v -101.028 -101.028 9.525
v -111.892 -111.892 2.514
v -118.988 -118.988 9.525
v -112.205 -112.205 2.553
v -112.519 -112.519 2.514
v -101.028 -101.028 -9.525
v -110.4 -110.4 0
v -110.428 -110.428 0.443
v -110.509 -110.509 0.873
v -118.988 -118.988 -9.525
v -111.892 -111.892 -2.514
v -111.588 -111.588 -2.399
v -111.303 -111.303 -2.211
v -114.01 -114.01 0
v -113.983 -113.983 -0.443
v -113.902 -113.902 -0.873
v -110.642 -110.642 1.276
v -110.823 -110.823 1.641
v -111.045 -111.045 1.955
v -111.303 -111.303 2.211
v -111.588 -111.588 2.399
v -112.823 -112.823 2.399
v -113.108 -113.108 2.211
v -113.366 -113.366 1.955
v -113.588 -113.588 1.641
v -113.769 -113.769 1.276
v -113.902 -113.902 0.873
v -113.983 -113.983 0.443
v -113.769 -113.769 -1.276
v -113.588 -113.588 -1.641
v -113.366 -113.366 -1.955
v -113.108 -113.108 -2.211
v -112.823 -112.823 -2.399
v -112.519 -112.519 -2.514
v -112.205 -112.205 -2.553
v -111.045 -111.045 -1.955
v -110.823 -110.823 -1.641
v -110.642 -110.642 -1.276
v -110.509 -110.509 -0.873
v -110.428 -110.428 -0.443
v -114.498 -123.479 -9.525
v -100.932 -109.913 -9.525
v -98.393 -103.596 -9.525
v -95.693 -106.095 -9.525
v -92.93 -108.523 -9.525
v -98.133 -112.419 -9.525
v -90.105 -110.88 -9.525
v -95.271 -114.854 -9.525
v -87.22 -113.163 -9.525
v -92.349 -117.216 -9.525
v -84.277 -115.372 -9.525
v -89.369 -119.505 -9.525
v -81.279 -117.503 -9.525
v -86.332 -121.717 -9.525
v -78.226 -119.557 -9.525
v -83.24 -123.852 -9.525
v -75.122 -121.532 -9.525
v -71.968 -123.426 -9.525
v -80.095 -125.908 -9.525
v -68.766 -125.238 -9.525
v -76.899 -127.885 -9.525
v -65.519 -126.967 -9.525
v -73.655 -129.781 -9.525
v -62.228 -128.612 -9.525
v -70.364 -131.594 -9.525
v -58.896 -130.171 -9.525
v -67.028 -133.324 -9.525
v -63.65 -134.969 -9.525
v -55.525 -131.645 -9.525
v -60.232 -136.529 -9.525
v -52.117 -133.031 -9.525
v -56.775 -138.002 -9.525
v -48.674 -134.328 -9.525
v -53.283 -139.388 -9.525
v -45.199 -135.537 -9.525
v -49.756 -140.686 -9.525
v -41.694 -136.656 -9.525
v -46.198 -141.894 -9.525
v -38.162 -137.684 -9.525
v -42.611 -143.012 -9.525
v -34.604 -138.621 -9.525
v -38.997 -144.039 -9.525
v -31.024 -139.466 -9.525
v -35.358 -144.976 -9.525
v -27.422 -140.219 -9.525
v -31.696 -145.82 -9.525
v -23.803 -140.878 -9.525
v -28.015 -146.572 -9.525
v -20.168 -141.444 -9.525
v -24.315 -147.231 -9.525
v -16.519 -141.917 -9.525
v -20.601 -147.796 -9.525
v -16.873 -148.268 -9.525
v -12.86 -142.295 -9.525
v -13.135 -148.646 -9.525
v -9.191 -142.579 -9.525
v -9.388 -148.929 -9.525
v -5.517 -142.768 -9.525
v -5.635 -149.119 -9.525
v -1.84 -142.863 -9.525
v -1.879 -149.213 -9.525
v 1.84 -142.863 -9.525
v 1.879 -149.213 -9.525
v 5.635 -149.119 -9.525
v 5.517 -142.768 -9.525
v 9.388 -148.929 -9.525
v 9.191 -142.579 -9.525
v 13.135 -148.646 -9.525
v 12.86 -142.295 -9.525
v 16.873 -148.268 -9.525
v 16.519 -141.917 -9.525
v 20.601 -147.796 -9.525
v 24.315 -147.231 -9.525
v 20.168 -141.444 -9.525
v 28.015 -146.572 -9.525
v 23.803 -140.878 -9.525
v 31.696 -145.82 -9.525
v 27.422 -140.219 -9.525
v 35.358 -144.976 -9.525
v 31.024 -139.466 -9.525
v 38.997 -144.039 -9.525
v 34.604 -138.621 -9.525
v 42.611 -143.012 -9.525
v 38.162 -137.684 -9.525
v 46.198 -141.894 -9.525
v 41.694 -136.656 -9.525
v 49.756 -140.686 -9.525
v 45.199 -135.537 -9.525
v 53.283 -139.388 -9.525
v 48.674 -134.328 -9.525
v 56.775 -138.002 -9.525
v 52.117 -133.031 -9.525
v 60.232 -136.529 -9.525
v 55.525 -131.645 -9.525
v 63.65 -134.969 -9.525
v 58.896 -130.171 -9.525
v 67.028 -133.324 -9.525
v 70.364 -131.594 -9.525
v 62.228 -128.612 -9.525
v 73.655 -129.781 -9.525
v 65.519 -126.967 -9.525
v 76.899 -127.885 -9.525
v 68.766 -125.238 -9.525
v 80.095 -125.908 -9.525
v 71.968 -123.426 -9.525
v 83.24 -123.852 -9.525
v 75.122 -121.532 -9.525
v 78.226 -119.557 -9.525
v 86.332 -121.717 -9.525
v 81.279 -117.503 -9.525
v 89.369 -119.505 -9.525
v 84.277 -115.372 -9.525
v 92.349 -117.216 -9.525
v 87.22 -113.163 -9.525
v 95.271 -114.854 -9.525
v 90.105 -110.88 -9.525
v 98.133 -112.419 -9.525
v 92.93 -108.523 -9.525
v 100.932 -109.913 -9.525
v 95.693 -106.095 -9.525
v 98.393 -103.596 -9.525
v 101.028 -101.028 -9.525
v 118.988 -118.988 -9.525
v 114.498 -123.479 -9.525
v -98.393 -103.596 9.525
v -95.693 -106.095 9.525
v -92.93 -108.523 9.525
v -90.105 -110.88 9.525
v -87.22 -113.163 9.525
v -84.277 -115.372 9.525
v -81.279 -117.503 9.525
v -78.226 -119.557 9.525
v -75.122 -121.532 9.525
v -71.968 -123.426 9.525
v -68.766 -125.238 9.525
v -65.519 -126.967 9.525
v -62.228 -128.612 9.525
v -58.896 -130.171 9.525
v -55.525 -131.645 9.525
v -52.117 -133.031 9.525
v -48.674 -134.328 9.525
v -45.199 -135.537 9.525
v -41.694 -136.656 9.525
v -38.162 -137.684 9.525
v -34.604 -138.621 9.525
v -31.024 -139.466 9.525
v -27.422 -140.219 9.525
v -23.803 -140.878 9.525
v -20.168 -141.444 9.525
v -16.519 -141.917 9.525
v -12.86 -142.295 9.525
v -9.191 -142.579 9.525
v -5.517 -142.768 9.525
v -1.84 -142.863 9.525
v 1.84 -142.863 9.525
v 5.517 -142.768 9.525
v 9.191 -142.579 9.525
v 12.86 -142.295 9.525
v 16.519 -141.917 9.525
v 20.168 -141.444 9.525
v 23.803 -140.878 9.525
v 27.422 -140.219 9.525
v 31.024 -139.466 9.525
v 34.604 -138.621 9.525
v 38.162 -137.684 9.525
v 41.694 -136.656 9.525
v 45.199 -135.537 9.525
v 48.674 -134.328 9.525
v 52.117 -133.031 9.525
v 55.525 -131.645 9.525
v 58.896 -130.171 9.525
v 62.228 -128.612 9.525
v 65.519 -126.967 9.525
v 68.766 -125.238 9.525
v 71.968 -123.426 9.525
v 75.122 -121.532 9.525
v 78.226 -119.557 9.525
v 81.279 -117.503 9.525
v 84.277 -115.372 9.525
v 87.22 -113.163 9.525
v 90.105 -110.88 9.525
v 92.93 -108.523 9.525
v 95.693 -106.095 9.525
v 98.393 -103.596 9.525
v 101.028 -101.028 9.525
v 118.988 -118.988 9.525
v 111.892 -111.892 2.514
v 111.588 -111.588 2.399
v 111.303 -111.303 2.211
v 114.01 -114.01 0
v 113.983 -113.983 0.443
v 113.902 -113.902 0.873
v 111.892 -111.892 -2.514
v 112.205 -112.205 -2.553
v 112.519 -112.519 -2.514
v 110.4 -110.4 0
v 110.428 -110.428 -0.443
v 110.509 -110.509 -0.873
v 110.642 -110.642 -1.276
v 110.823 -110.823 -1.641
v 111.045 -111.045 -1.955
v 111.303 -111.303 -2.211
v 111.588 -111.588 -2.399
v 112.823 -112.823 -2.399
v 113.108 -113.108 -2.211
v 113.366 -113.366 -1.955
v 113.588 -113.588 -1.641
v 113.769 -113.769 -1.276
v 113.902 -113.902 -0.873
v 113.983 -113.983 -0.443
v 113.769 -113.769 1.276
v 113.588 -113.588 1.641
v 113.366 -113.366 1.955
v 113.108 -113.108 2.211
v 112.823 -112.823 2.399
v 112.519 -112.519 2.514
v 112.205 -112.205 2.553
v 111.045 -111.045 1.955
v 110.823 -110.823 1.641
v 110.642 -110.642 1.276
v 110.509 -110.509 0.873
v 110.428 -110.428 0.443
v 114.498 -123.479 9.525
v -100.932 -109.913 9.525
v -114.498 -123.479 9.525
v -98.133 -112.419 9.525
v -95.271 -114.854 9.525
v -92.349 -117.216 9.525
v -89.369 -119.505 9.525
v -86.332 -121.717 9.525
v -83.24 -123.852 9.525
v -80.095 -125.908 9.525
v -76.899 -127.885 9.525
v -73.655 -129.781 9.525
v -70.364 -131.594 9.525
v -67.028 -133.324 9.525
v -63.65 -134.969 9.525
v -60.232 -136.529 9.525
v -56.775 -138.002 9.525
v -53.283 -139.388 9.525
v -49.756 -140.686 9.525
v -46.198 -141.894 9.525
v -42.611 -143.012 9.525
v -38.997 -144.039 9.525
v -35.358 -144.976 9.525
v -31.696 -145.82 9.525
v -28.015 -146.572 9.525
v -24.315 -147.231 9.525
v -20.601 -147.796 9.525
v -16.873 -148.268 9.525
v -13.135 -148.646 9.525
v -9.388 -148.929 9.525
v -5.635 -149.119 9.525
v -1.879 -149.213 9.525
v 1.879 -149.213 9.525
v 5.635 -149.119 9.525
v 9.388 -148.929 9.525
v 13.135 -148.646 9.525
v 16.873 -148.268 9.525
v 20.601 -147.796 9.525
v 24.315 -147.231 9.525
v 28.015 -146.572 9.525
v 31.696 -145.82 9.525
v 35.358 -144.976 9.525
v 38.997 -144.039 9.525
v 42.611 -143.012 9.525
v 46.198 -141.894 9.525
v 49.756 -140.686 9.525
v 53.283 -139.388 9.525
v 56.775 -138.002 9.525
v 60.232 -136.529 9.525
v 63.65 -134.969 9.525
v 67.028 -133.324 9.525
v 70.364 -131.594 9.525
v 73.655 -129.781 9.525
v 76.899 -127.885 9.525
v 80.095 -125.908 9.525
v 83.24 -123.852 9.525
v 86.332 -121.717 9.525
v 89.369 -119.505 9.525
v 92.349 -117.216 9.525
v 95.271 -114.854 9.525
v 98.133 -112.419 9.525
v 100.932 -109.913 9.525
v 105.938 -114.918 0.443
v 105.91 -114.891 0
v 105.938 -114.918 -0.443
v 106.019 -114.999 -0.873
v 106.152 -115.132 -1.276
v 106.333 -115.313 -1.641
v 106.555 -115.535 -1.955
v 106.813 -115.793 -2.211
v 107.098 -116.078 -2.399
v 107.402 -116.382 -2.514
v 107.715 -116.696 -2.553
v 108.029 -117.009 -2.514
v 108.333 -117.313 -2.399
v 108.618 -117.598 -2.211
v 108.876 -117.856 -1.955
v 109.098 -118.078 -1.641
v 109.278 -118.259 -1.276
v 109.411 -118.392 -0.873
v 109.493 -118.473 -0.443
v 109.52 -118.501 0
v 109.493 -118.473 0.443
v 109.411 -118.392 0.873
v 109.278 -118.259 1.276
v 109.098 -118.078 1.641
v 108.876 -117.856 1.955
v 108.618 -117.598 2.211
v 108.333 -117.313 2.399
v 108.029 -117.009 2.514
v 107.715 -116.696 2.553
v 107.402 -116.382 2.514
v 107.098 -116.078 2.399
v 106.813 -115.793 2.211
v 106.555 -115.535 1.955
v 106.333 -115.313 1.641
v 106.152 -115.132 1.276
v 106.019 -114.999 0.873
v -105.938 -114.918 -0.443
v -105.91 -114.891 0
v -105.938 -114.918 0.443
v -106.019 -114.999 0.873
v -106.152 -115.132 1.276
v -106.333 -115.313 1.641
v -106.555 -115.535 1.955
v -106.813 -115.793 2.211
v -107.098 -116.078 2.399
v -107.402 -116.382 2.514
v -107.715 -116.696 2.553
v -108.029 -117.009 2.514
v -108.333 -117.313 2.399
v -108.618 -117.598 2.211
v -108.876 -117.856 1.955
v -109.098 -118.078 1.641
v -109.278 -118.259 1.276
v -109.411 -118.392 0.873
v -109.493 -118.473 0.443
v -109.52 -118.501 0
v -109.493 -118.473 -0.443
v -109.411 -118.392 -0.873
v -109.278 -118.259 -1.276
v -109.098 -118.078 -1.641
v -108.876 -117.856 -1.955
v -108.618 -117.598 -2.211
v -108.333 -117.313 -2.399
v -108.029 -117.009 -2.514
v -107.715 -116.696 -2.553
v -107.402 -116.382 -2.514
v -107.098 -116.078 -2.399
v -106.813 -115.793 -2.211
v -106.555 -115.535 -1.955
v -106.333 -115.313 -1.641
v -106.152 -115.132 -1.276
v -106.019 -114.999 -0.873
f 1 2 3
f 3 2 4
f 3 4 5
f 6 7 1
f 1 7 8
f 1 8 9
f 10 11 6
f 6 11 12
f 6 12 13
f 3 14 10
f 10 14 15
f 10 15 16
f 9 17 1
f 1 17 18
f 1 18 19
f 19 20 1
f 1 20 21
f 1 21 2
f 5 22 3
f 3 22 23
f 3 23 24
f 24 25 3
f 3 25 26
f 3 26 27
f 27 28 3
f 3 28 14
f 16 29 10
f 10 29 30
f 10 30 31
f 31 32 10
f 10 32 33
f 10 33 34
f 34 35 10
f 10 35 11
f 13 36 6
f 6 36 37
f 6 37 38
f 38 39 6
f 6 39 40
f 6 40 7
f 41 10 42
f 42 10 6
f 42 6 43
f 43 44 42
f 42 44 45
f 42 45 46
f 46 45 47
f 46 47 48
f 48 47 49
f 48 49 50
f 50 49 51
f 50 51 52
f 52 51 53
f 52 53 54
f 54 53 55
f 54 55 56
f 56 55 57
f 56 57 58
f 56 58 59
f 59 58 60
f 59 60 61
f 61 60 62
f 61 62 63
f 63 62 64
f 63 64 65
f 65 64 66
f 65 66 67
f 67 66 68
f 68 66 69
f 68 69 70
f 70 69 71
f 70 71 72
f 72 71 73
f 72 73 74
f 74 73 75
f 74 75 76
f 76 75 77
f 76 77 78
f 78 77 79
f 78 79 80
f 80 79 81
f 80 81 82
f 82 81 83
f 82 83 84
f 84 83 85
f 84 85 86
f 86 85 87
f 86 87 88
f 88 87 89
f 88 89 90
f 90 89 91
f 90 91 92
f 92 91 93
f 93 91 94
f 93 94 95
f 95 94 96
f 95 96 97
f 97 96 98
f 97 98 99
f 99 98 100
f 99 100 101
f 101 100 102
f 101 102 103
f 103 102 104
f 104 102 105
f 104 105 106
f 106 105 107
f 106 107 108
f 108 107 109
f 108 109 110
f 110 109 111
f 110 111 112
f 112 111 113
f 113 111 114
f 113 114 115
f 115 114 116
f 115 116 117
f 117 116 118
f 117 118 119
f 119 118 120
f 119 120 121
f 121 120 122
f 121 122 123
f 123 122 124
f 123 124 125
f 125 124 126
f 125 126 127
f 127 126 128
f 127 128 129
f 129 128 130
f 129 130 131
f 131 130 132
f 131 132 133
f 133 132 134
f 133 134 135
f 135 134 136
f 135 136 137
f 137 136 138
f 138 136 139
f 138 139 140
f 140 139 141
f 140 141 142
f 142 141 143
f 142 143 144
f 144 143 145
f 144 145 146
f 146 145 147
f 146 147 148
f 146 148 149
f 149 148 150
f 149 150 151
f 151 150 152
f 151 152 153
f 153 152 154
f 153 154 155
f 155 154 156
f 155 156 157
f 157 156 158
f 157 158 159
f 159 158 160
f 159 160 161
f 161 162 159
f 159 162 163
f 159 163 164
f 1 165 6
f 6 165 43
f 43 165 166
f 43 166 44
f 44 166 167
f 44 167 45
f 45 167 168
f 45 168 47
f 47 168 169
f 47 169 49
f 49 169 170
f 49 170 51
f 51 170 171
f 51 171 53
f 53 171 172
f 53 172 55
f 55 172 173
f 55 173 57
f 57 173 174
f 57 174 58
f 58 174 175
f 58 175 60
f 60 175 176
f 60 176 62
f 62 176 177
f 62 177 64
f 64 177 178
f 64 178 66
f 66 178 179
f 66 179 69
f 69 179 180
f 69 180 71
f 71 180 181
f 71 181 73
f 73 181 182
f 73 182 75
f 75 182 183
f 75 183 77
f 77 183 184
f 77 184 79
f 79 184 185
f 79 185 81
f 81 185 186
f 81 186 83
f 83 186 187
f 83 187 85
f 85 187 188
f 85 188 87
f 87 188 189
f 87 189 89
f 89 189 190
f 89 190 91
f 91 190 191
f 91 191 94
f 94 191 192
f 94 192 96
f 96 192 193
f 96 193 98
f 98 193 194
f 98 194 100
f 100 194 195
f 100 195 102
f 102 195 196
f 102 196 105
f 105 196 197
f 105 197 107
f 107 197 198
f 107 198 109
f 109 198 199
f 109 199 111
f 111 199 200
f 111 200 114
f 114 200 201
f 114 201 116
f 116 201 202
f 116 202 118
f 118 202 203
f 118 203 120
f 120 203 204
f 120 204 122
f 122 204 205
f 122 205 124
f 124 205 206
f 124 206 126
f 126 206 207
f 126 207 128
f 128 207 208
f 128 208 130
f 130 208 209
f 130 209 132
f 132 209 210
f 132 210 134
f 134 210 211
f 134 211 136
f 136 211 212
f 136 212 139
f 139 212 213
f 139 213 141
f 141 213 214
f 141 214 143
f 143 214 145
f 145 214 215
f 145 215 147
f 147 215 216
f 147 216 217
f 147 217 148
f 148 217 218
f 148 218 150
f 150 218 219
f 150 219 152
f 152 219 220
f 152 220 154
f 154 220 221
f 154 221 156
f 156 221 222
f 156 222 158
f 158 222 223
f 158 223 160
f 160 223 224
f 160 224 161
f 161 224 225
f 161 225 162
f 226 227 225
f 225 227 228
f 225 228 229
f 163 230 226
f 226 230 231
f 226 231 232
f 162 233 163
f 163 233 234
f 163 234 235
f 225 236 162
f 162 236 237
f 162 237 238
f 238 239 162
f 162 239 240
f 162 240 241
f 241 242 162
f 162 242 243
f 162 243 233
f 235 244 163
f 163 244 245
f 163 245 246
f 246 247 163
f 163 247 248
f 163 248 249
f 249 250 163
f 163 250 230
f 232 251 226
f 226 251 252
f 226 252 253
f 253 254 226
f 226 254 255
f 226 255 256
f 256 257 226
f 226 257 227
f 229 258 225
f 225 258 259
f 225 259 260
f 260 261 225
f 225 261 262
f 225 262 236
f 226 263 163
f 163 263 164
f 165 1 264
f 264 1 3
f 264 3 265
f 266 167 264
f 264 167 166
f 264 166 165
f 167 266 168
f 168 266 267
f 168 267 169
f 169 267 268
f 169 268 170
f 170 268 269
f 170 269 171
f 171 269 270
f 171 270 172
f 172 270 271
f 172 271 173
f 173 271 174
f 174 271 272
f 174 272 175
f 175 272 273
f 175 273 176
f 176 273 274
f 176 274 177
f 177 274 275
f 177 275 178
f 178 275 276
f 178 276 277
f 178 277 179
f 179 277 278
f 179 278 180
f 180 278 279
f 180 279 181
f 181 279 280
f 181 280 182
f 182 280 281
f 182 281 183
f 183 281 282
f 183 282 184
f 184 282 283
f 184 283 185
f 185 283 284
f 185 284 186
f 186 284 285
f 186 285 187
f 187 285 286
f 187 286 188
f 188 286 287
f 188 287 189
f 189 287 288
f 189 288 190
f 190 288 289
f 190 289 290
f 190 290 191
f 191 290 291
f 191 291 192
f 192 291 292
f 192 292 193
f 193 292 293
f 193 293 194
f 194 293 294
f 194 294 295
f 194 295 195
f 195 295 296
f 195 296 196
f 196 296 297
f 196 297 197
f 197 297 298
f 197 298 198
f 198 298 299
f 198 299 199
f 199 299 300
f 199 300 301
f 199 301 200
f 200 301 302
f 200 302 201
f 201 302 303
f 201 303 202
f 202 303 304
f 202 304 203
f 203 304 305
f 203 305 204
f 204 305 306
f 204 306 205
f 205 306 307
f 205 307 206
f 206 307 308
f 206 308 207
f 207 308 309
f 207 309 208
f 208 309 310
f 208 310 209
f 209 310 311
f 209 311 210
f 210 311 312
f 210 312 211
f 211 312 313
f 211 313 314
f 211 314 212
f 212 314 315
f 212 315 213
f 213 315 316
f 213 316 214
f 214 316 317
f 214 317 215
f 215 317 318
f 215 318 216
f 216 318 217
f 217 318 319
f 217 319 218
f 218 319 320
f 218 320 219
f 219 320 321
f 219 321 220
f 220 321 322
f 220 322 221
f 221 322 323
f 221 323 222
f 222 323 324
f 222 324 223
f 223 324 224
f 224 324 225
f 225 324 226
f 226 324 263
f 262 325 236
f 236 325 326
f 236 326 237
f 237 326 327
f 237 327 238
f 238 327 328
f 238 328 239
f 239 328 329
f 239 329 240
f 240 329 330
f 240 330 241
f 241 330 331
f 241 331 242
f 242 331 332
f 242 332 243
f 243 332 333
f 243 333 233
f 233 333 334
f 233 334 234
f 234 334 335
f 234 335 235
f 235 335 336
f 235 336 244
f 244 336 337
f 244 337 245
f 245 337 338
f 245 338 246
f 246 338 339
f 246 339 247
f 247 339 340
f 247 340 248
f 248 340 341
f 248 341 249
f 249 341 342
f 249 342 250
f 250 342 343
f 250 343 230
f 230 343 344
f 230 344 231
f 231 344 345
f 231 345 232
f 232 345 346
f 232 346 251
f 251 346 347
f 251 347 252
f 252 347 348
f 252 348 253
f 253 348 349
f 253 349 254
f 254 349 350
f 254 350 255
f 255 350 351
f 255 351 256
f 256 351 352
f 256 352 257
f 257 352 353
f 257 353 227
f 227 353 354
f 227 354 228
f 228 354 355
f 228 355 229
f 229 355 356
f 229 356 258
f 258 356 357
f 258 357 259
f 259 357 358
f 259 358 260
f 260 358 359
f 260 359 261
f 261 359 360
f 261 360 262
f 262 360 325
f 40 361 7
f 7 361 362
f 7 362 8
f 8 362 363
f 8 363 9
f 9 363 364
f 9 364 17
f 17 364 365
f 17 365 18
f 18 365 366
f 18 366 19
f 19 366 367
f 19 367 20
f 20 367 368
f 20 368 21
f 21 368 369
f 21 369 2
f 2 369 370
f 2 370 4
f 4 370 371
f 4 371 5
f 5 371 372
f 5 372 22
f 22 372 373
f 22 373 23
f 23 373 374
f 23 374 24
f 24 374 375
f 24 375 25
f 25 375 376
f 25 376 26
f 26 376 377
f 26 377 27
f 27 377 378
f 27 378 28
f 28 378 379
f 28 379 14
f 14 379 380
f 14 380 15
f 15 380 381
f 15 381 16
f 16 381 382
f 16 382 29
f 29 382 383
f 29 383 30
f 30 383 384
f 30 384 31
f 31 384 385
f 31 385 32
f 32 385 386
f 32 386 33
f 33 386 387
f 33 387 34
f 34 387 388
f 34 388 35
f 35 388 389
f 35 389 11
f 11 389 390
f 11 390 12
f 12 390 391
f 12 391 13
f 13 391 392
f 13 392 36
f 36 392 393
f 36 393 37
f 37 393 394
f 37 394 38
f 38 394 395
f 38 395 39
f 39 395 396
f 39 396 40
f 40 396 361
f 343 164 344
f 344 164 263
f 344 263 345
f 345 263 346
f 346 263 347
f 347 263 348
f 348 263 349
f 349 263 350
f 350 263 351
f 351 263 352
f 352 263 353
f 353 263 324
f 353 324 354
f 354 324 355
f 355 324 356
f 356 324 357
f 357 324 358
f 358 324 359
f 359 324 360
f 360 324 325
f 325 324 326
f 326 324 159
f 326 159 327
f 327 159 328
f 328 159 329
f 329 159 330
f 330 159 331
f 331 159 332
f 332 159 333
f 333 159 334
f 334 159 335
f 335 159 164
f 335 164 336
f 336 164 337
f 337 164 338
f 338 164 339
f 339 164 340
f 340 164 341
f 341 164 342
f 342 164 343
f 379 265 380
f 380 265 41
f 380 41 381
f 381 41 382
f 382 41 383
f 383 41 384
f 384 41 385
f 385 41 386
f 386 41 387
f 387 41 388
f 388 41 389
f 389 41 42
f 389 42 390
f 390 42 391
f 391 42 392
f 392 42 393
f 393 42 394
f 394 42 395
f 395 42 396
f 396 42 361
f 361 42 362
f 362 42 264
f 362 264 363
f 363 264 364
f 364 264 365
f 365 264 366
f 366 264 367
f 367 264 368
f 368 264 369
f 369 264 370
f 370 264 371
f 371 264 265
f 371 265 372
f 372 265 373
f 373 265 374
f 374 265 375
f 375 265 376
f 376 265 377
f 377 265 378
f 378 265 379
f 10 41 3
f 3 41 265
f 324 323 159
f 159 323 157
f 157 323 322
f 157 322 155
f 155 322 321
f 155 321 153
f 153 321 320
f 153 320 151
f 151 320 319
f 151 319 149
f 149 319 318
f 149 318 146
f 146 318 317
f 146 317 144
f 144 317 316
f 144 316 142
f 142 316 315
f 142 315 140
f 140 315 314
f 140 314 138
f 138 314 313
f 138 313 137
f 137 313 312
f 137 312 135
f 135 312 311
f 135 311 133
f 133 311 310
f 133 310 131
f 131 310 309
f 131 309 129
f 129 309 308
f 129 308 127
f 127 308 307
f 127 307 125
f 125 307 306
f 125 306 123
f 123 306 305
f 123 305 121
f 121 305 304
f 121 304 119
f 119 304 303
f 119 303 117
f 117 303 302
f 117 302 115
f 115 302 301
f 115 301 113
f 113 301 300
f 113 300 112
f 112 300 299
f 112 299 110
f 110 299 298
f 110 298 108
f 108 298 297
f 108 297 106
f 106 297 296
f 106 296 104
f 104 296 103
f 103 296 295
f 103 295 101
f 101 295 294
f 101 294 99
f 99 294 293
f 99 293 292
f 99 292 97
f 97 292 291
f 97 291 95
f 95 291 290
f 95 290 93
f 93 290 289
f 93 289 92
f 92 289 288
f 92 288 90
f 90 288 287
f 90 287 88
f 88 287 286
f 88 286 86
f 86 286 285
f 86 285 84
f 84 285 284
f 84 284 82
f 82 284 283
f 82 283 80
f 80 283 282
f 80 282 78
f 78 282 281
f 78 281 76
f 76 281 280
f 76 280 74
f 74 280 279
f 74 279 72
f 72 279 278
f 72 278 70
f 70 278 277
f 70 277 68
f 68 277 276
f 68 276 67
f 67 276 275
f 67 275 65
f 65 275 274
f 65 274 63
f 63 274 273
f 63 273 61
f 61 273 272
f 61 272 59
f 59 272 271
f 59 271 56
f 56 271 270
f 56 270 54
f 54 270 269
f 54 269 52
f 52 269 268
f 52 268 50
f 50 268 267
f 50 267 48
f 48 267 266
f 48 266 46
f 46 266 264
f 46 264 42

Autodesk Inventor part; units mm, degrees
ref_plane "YZ Plane" through (0, 0, 0) normal (1, 0, 0) x (0, 1, 0)
ref_plane "XY Plane" through (0, 0, 0) normal (0, 0, 1) x (1, 0, 0)
sketch "Sketch1" plane through (0, 0, 0) normal (0, 0, 1) x (1, 0, 0)
  circle A0 centre (0, 0) radius 142.875
  circle A1 centre (0, 0) radius 149.225
  dimension "innerDiameter" = 285.75
  dimension "outerDiameter" = 298.45
extrude "Extrusion1" add sketch "Sketch1" along normal mid plane 19.05
sketch "Sketch2" plane through (0, 0, 0) normal (0, 0, 1) x (1, 0, 0)
  circle A0 centre (0, 0) radius 142.875 construction
  line L0 (0, 142.875) -> (0, 149.225) construction
  circle A1 centre (0, 0) radius 149.225 construction
  line L1 (0, 142.875) -> (44.45, 142.875)
  line L2 (44.45, 142.875) -> (44.45, 149.225)
  line L3 (44.45, 149.225) -> (19.05, 149.225)
  line L4 (0, 142.875) -> (-44.45, 142.875)
  line L5 (-44.45, 142.875) -> (-44.45, 149.225)
  line L6 (-44.45, 149.225) -> (19.05, 149.225)
  line L7 (371.6693, 35.081) -> (0, 0)
  dimension "halfBaseWidth" = 44.45
  dimension "baseThickness" = 6.35
  dimension "baseHeight" = 0
extrude "Extrusion2" add sketch "Sketch2" along normal mid plane 19.05
sketch "Sketch5" plane through (-44.45, 149.225, 9.525) normal (0, 1, 0) x (1, 0, 0)
  line L0 (0, 19.05) -> (0, 0) projected
  line L1 (88.9, 19.05) -> (88.9, 0) projected
  line L2 (0, 0) -> (88.9, 0)
  line L3 (88.9, 0) -> (88.9, 19.05)
  line L4 (88.9, 19.05) -> (0, 19.05)
  line L5 (0, 19.05) -> (0, 0)
  point P0 (44.45, 9.525)
  point P1 (0, 19.05)
extrude "Extrusion3" add sketch "Sketch5" along normal blind 38.1
sketch "Sketch7" plane through (0, 0, 9.525) normal (0, 0, 1) x (1, 0, 0)
  line L0 (-44.45, 142.875) -> (-44.45, 187.325) projected
  line L1 (-44.45, 187.325) -> (44.45, 187.325) projected
  line L2 (44.45, 142.875) -> (44.45, 187.325) projected
  line L3 (0, 187.325) -> (0, 149.1868) construction
  line L4 (-15.875, 169.545) -> (15.875, 169.545)
  line L5 (15.875, 169.545) -> (15.875, 182.245)
  line L6 (15.875, 182.245) -> (-15.875, 182.245)
  line L7 (-15.875, 182.245) -> (-15.875, 169.545)
  line L8 (-15.875, 169.545) -> (15.875, 182.245) construction
  line L9 (15.875, 169.545) -> (-15.875, 182.245) construction
  point P0 (0, 0)
  point P1 (-38.1, 144.2792)
  point P2 (38.1, 144.2792)
  point P3 (0, 175.895)
  dimension "screwHoleWidth" = 31.75
  dimension "screwHoleHeight" = 12.7
  dimension "screwHoleSupportThickness" = 5.08
extrude "Extrusion4" cut sketch "Sketch7" against normal through all
sketch "Sketch6" plane through (-44.45, 187.325, 9.525) normal (0, 1, 0) x (1, 0, 0)
  point P0 (44.45, 9.525)
  point P1 (44.45, 9.525)
hole "Hole2" at (0, 187.325, 0) direction (0, -1, 0) diameter 6.7564 depth 5.08 clearance for "Flat Head Machine Screw (82)" size "1/4" standard "Ansi Unified Screw Threads"
ref_plane "Work Plane1" through (0, 0, 0) normal (-0.7071, 0.7071, 0) x (0, 0, 1)
ref_plane "Work Plane2" through (0, 0, 0) normal (0.7071, 0.7071, 0) x (0, 0, 1)
sketch "Sketch11" plane through (0, 0, 0) normal (0, 0, 1) x (1, 0, 0)
  arc A0 (-43.0678, 142.875) -> (43.0678, 142.875) centre (0, 0) ccw projected
  circle A1 centre (0, 0) radius 142.875 projected
  line L0 (-214.9625, 214.9625) -> (217.3313, -217.3313) projected
  line L1 (-101.0279, 101.0279) -> (-96.5378, 105.518)
  line L2 (-101.0279, 101.0279) -> (-94.6779, 101.0279) construction
  line L3 (-96.5378, 105.518) -> (-114.4983, 123.4785)
  line L4 (-96.5378, 105.518) -> (-71.1378, 105.518) construction
  line L5 (-114.4983, 123.4785) -> (-118.9884, 118.9884)
  line L6 (-118.9884, 118.9884) -> (-101.0279, 101.0279)
  line L7 (-101.0279, 101.0279) -> (-105.518, 96.5378)
  line L8 (-105.518, 96.5378) -> (-123.4785, 114.4983)
  line L9 (-123.4785, 114.4983) -> (-118.9884, 118.9884)
  point P0 (38.1, 144.2792)
  point P1 (-38.1, 144.2792)
  point P2 (-109.9126, 100.9323)
  point P3 (-100.9323, 109.9126)
  dimension "d47" = 6.35
  dimension "d48" = 45
  dimension "d49" = 25.4
  dimension "d50" = 135
extrude "Extrusion7" add sketch "Sketch11" along normal mid plane 19.05 contours A0 L0 L5 L3 | A0 L8 L9 L0
sketch "Sketch12" plane through (-114.4983, 123.4785, -9.525) normal (0.7071, 0.7071, 0) x (-0.7071, 0.7071, 0)
  line L0 (0, 0) -> (0, 19.05) projected
  line L1 (-19.1852, 19.05) -> (0, 19.05) projected
  line L2 (-19.1852, 0) -> (-19.1852, 19.05) projected
  line L3 (0, 0) -> (-19.1852, 0) projected
  line L4 (-9.5926, 19.05) -> (-9.5926, 0) construction
  line L5 (0, 9.525) -> (-19.1852, 9.525) construction
  point P0 (-168.275, 9.525)
  point P1 (-9.5926, 9.525)
hole "Hole4" at (-107.7153, 116.6955, 0) direction (-0.7071, -0.7071, 0) diameter 5.1054 depth 12.7 clearance for "Flat Head Machine Screw (82)" size "#10" standard "Ansi Unified Screw Threads"
pattern_circular "Circular Pattern1" count 4 over 360 about axis through (0, 0, -10) along (0, 0, 1) of "Extrusion7", "Hole4"
sketch "Sketch13" plane through (0, 0, 9.525) normal (0, 0, 1) x (1, 0, 0)
  line L0 (-15.875, 182.245) -> (15.875, 182.245) projected
  line L1 (-44.45, 187.325) -> (44.45, 187.325) projected
  line L2 (0, 184.785) -> (8.89, 184.785)
  line L3 (8.89, 184.785) -> (8.89, 182.245)
  line L4 (8.89, 182.245) -> (0, 182.245)
  line L5 (0, 184.785) -> (0, 182.245)
  line L6 (15.875, 182.245) -> (-15.875, 182.245)
  line L7 (0, 184.785) -> (-8.89, 184.785)
  line L8 (-8.89, 184.785) -> (-8.89, 182.245)
  point P0 (0, 0)
  dimension "d63" = 8.89
  dimension "d64" = 2.54
extrude "Extrusion8" cut sketch "Sketch13" against normal through all
split "Split1" plane through (0, 0, 0) removes the side toward (0.7071, 0.7071, 0)
split "Split2" plane through (0, 0, 0) removes the side toward (-0.7071, 0.7071, 0)
equation "\"outerDiameter\" = innerDiameter + 2 * ringThicknessRadius"
equation "\"d7\" = ringWidth"
equation "\"d51\" = ringWidth"
equation "\"ringThicknessRadius\" = 6.35"
equation "\"ringWidth\" = 19.05"
properties part number "mountLowerQuarter" material "PET Plastic"
